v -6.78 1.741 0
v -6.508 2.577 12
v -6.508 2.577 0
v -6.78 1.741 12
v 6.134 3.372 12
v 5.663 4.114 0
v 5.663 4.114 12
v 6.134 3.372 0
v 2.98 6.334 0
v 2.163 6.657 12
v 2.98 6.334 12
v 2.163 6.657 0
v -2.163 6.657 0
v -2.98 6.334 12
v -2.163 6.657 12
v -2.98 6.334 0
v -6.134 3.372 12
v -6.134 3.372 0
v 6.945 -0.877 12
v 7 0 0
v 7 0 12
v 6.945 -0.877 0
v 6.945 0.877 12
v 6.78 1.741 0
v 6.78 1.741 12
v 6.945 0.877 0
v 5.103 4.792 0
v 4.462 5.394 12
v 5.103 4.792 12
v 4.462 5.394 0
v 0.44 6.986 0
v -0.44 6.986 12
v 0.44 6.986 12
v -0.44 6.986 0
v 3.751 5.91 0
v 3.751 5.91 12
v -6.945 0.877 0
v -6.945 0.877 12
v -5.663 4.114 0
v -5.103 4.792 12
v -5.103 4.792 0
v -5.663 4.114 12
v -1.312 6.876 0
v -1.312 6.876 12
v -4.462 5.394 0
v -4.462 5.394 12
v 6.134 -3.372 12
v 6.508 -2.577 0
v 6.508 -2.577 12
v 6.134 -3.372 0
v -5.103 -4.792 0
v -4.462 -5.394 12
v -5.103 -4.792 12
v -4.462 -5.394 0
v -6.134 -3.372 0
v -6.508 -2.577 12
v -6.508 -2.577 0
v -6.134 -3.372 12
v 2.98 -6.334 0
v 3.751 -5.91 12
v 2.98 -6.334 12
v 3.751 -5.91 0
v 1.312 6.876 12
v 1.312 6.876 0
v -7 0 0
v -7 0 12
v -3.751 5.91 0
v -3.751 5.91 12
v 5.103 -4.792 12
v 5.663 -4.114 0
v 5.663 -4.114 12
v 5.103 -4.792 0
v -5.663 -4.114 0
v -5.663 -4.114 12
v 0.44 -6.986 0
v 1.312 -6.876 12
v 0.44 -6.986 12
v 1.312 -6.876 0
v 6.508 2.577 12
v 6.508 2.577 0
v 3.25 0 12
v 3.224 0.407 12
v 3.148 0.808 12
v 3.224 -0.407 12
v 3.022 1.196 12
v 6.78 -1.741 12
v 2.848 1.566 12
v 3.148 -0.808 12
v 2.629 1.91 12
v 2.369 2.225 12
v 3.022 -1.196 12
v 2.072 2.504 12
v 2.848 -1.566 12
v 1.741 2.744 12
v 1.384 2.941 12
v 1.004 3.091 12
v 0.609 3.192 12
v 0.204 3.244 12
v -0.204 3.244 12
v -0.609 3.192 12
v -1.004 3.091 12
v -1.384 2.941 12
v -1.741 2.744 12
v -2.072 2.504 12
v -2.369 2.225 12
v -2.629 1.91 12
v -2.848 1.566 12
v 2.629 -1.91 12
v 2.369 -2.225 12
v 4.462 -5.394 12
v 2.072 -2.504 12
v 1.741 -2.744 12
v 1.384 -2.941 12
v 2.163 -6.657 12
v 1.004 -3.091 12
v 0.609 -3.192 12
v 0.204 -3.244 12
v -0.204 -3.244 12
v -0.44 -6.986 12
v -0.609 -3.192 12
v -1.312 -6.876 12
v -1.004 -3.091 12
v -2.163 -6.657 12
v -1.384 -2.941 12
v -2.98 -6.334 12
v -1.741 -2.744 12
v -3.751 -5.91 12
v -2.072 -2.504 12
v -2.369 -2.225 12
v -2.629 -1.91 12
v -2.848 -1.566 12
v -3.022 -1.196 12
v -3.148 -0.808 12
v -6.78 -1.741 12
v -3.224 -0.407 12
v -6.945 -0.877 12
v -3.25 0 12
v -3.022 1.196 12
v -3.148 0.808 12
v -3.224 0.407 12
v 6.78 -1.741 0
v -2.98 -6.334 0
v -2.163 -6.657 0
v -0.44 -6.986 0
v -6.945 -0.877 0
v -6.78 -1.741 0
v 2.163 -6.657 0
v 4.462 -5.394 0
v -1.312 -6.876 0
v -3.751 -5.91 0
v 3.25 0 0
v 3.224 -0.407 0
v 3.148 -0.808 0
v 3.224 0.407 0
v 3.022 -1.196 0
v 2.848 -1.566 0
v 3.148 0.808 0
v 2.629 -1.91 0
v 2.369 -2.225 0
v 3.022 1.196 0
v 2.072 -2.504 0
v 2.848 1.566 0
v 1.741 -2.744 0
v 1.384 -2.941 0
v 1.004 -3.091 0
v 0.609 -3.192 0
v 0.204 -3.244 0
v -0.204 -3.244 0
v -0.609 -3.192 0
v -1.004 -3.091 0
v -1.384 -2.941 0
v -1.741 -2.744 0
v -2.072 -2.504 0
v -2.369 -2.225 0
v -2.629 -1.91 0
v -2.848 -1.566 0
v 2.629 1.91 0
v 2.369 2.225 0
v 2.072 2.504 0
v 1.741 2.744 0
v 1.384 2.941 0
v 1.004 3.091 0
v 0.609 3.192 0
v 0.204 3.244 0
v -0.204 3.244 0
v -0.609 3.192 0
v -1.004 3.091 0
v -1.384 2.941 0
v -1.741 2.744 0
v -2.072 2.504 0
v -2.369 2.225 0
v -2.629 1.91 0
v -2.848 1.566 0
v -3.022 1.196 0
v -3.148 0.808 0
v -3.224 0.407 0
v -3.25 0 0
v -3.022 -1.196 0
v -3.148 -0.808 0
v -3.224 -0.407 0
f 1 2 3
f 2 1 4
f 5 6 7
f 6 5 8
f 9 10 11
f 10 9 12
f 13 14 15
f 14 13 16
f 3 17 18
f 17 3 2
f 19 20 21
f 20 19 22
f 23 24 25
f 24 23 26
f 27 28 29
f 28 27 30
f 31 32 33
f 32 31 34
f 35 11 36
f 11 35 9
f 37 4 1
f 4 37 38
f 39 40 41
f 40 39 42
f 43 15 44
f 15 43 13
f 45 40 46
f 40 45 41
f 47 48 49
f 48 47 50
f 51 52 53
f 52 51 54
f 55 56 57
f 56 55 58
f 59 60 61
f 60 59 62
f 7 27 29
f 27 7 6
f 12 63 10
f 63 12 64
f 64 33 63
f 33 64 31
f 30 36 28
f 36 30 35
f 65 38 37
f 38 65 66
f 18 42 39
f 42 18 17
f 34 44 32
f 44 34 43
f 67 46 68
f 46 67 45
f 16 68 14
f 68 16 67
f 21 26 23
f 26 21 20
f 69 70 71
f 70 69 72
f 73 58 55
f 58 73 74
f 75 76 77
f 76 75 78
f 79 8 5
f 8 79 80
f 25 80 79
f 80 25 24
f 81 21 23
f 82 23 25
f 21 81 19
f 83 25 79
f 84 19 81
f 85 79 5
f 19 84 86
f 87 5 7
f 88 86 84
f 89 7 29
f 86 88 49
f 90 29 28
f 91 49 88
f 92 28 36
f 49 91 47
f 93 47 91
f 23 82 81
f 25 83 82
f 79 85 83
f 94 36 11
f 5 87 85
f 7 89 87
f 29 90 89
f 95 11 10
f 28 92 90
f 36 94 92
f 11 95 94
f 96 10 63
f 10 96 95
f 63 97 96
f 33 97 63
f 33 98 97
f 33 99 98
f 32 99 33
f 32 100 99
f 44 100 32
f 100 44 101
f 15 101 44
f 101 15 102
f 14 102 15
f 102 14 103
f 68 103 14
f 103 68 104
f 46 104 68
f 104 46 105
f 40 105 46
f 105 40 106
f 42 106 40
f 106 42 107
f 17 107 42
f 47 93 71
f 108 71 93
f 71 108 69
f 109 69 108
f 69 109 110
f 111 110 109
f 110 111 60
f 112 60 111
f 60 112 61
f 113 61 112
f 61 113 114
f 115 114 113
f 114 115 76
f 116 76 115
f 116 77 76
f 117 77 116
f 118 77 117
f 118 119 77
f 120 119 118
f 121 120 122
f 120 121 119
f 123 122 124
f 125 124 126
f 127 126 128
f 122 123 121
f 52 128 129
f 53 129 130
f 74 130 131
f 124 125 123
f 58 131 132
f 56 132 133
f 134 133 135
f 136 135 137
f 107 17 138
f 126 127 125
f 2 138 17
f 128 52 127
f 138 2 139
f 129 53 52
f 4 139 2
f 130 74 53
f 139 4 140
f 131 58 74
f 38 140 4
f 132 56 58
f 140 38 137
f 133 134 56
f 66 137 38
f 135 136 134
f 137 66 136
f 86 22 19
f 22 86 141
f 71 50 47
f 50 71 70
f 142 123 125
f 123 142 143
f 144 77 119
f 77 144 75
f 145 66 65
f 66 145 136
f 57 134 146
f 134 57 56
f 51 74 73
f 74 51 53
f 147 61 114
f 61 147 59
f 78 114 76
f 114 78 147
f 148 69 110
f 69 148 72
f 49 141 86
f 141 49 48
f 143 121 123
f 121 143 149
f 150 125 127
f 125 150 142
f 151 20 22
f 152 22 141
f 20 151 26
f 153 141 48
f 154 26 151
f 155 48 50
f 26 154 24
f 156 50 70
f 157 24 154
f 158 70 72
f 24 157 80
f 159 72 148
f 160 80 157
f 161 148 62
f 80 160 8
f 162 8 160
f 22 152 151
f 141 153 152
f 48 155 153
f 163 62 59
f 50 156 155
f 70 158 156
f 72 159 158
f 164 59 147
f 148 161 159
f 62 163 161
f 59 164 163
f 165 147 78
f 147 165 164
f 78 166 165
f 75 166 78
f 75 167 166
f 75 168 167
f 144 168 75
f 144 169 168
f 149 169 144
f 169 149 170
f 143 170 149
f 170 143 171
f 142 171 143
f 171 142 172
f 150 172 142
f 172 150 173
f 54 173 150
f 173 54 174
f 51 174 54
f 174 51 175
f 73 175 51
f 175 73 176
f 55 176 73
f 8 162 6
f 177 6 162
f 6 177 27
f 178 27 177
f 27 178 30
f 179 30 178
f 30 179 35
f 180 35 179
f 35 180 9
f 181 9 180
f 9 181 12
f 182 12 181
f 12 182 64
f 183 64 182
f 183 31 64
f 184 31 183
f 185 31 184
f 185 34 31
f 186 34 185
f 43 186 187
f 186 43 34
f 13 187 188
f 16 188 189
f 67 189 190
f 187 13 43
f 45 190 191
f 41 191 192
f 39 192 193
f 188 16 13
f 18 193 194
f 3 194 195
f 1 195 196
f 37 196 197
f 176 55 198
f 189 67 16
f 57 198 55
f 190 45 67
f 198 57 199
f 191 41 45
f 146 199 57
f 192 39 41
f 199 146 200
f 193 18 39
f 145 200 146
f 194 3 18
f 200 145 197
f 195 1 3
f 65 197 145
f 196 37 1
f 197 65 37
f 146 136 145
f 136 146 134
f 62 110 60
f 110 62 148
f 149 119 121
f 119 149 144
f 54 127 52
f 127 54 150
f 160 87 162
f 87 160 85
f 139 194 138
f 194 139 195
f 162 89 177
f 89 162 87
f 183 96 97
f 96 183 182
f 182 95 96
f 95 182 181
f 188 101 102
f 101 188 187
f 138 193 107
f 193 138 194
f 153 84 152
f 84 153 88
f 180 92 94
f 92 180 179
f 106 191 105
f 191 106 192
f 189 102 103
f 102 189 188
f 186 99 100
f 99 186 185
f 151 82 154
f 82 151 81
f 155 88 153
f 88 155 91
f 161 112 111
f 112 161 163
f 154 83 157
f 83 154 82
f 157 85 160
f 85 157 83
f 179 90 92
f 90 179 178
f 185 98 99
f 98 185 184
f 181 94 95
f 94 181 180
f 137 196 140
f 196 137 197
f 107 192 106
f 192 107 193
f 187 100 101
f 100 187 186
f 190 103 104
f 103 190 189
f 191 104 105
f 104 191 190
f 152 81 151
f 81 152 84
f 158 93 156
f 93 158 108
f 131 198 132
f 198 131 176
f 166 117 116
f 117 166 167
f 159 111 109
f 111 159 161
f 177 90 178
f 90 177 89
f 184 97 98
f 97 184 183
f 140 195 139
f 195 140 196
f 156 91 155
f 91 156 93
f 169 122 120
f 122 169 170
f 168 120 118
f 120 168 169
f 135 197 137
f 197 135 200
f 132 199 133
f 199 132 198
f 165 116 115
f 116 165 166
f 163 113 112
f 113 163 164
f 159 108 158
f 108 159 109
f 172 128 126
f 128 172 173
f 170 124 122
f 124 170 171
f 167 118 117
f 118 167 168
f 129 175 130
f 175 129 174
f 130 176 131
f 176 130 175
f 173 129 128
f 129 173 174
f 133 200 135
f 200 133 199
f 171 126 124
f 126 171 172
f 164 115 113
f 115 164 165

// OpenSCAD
$fn = 50;


difference() {
	union() {
		cylinder(h = 12, r = 7.0000000000);
	}
	union() {
		translate(v = [0, 0, -100]) {
			cylinder(h = 200, r = 3.2500000000);
		}
	}
}
